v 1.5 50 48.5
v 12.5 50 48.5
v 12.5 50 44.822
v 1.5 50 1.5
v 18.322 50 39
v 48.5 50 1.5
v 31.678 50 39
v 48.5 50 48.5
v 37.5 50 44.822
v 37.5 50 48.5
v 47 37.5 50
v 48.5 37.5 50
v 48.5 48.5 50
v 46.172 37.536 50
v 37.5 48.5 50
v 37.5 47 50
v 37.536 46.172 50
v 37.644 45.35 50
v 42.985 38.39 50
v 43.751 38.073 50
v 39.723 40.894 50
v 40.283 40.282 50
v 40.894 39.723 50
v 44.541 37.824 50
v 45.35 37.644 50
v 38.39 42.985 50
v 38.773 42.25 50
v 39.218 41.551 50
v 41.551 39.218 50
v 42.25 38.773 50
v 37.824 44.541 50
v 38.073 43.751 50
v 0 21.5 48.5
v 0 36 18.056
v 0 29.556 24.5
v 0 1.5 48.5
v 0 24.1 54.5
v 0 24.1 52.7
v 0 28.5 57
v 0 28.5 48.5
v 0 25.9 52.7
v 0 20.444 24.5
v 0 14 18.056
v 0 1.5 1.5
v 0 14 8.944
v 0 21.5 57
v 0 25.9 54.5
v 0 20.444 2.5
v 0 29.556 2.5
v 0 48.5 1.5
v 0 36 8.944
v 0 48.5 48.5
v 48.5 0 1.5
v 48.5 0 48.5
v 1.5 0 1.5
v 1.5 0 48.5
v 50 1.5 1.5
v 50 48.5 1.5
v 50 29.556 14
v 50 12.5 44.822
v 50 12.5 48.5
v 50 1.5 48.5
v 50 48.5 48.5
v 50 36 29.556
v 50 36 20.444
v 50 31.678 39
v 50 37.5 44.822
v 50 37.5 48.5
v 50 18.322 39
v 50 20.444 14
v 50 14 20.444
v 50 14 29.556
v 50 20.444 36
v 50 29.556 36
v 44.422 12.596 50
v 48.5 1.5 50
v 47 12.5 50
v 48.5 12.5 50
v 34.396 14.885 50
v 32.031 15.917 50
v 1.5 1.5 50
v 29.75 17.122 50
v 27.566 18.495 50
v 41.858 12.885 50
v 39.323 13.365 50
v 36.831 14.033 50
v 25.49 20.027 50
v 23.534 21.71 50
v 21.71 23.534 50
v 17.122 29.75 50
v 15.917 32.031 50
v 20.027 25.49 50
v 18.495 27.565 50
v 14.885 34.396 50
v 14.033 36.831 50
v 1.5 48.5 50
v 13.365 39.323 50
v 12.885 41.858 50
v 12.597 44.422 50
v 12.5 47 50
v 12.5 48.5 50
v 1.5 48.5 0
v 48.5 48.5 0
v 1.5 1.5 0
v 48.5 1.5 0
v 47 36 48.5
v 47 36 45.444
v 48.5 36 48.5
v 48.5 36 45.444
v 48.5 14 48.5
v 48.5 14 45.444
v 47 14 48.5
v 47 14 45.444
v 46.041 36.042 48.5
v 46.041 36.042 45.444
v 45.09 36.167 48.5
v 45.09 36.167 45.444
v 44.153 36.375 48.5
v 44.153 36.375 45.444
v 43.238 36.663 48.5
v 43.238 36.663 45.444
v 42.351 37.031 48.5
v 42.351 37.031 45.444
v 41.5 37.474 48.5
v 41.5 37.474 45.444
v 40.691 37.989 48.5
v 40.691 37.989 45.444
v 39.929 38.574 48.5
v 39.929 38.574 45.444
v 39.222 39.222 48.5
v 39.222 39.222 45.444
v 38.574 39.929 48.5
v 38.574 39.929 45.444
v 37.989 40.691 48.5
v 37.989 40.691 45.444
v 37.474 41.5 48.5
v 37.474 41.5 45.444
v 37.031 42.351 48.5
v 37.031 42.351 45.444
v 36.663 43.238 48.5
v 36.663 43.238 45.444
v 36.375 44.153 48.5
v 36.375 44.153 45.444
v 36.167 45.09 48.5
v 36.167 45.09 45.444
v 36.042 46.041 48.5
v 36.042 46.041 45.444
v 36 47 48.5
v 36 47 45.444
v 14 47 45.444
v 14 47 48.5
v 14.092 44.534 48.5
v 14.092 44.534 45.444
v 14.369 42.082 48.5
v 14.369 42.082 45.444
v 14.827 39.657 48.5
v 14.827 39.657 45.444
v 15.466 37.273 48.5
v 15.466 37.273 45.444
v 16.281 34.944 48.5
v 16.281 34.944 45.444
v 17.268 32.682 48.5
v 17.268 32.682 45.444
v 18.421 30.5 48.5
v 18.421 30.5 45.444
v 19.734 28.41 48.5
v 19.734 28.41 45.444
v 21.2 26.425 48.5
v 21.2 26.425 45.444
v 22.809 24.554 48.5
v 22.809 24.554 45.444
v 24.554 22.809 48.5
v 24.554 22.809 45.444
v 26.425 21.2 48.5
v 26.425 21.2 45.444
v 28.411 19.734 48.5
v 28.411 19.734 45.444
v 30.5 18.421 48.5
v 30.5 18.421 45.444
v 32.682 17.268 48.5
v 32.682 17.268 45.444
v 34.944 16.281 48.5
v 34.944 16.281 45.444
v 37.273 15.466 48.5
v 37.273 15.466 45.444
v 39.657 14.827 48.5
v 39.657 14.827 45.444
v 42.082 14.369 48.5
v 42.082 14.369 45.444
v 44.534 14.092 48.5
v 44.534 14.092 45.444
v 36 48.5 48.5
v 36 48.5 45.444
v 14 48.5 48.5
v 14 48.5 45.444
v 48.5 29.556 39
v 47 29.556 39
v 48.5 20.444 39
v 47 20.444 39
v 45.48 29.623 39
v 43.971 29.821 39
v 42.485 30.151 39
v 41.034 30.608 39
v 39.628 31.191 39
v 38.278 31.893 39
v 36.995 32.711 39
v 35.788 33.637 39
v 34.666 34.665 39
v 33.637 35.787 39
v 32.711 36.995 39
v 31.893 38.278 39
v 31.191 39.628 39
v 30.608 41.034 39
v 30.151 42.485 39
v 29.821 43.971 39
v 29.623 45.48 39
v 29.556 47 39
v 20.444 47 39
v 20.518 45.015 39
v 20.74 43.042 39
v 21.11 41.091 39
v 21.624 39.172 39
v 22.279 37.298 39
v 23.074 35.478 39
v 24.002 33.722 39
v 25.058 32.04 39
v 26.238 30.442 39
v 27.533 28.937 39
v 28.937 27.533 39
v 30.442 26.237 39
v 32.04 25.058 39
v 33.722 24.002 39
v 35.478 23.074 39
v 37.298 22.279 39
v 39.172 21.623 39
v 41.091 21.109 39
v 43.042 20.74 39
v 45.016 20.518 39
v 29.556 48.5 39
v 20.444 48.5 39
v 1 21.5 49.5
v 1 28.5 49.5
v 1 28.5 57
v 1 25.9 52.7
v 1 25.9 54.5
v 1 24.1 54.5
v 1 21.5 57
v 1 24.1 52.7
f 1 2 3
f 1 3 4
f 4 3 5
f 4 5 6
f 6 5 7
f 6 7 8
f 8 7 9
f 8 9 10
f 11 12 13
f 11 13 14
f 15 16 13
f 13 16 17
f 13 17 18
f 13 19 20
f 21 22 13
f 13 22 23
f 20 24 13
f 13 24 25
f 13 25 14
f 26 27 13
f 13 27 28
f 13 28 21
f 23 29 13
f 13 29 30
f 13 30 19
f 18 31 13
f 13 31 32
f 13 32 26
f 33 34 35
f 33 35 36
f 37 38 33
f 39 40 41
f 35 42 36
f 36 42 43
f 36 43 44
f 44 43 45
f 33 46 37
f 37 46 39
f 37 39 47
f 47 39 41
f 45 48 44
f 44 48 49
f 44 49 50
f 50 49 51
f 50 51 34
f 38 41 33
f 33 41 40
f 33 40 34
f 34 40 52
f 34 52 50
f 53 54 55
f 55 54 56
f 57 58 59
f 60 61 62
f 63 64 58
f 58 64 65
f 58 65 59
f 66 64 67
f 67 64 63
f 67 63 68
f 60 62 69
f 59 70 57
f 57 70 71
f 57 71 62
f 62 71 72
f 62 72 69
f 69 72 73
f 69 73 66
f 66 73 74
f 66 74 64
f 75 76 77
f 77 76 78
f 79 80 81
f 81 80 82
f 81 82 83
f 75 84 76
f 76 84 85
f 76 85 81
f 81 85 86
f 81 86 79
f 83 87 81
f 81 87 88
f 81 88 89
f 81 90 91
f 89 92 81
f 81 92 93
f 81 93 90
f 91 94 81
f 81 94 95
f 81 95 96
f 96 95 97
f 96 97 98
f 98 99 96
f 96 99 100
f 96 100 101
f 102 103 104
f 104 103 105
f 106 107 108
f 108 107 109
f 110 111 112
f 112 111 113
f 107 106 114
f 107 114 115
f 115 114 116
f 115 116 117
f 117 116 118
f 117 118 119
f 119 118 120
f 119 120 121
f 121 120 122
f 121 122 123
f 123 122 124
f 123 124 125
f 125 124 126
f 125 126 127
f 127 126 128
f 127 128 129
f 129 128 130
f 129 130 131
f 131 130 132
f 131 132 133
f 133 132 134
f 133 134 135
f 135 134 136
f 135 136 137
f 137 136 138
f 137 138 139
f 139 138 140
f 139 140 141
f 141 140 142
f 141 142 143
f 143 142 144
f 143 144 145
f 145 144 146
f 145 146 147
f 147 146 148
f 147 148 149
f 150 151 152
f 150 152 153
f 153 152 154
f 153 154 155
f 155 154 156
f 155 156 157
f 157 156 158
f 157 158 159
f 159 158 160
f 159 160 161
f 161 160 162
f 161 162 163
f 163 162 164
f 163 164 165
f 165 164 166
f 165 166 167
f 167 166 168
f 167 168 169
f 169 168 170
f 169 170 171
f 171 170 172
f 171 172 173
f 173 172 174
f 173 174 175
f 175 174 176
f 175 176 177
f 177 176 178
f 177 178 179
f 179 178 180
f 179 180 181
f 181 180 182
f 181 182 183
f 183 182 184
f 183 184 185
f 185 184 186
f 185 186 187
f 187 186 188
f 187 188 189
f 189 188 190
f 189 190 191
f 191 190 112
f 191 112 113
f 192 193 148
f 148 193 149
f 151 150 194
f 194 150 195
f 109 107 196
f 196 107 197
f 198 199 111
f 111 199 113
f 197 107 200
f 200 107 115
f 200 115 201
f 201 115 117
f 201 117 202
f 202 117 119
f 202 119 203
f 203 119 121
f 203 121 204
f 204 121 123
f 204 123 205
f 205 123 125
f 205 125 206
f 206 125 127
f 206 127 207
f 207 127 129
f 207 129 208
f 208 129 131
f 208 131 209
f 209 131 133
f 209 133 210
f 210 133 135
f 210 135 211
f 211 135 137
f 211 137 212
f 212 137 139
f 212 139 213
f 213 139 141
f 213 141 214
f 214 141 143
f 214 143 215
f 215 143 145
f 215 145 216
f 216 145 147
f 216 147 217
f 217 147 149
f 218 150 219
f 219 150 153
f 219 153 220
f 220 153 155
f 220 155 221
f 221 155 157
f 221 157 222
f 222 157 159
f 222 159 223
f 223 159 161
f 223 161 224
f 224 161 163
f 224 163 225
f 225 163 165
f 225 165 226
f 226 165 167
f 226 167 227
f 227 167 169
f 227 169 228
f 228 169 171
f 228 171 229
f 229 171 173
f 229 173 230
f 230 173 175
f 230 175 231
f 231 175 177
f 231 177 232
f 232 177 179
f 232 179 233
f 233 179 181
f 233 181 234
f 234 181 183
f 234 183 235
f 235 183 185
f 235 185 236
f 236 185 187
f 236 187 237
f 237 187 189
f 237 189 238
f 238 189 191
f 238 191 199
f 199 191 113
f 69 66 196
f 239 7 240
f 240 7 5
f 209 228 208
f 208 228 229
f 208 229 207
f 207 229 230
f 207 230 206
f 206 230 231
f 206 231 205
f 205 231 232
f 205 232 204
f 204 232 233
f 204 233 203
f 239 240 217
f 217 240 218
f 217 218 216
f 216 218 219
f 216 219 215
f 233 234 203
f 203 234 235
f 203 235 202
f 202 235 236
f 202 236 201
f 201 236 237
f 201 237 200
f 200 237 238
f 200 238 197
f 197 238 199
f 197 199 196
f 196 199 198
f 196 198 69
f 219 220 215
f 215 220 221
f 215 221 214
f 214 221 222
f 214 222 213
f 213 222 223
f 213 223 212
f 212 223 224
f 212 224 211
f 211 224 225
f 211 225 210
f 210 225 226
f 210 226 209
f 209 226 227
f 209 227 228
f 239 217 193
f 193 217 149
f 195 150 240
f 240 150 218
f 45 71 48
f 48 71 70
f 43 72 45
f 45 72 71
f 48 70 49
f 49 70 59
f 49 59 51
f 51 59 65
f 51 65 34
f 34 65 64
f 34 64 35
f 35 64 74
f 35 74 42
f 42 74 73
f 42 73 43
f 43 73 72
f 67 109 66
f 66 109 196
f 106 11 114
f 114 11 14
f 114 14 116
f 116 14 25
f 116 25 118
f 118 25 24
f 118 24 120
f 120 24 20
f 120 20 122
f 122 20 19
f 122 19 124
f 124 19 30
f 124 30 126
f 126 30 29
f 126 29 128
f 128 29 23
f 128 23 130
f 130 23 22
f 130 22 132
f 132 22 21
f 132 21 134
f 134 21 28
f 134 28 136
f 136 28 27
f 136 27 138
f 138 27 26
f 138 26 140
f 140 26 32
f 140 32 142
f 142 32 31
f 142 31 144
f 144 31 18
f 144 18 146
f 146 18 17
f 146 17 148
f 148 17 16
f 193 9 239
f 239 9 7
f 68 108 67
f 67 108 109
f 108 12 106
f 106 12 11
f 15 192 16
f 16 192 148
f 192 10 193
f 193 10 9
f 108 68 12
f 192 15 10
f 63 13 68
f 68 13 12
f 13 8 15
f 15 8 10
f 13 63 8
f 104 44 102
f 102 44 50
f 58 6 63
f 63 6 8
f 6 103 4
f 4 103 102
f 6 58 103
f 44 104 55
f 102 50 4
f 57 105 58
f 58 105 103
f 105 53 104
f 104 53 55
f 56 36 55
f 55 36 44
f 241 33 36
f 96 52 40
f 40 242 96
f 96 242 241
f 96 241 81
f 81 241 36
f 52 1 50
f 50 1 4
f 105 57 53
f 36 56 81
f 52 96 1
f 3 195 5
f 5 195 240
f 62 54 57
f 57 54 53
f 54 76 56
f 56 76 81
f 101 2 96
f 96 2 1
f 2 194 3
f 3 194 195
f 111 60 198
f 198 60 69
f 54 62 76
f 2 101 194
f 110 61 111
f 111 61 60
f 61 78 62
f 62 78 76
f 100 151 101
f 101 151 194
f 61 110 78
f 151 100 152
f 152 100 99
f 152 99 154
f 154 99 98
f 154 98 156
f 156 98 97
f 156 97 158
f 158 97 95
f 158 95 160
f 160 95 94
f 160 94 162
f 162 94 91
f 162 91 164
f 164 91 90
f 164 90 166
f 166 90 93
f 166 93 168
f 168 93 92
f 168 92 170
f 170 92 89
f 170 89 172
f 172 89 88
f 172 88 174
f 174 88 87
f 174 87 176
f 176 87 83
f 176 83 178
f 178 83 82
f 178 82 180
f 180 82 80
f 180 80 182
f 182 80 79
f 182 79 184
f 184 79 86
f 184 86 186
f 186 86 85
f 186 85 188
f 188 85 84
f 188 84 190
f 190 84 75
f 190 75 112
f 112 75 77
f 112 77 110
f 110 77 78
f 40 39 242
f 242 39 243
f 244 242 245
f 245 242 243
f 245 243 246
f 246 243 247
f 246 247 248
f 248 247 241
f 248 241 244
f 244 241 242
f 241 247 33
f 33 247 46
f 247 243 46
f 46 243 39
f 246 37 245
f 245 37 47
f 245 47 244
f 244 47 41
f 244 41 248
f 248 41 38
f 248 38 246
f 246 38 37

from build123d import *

# Parameters (mm, degrees)
SKETCH1_W                = 50
SKETCH1_H                = 50
BOSS_EXTRUDE1_DEPTH      = 50
CHAMFER1_SIZE            = 1.5
BOSS_EXTRUDE2_DEPTH      = 7
BOSS_EXTRUDE2_DEPTH_BACK = 7
SKETCH6_W                = 1
SKETCH6_H                = 7
SKETCH7_W                = 1.8
SKETCH7_H                = 1.8
CUT_EXTRUDE1_DEPTH       = 7


with BuildPart() as part:
    # Sketch1 → Boss-Extrude1 (new body)
    with BuildSketch(Plane.XY):
        with Locations((25, 25)):
            Rectangle(SKETCH1_W, SKETCH1_H)
    extrude(amount=BOSS_EXTRUDE1_DEPTH)

    # Cut-Sweep2: sweep along a path in Sketch4
    with BuildLine(Plane.XY.offset(50)) as cut_sweep2_path:
        Line((25, 50), (25, 47))
        ThreePointArc((25, 47), (31.443650814, 31.443650814), (47, 25))
        Line((47, 25), (50, 25))
    # Sketch3 → Cut-Sweep2 (sweep, cut)
    with BuildSketch(Plane.XZ.offset(-50)):
        Polygon((29.556349186, 39), (36, 45.443650814), (36, 54.556349186), (29.556349186, 61), (20.443650814, 61), (14, 54.556349186), (14, 45.443650814), (20.443650814, 39), align=None)
    sweep(path=cut_sweep2_path.line, mode=Mode.SUBTRACT)

    # Sketch5 → Cut-Loft1 section 0
    with BuildSketch(Plane.ZY):
        with BuildLine():
            Line((24.5, 20.443650814), (24.5, 29.556349186))
            Line((24.5, 29.556349186), (18.056349186, 36))
            Line((18.056349186, 36), (8.943650814, 36))
            Line((8.943650814, 36), (2.5, 29.556349186))
            Line((2.5, 29.556349186), (2.5, 20.443650814))
            Line((2.5, 20.443650814), (8.943650814, 14))
            Line((8.943650814, 14), (18.056349186, 14))
            Line((18.056349186, 14), (24.5, 20.443650814))
        make_face()
    # Sketch2 → Cut-Loft1 section 1
    with BuildSketch(Plane.ZY.offset(-50)):
        with BuildLine():
            Line((36, 29.556349186), (29.556349186, 36))
            Line((29.556349186, 36), (20.443650814, 36))
            Line((20.443650814, 36), (14, 29.556349186))
            Line((14, 29.556349186), (14, 20.443650814))
            Line((14, 20.443650814), (20.443650814, 14))
            Line((20.443650814, 14), (29.556349186, 14))
            Line((29.556349186, 14), (36, 20.443650814))
            Line((36, 20.443650814), (36, 29.556349186))
        make_face()
    loft(mode=Mode.SUBTRACT)

    # Chamfer1
    chamfer1_edges = [part.edges().sort_by_distance(p)[0] for p in [
        (50, 7, 50),
        (43, 50, 50),
        (50, 43, 50),
        (7, 50, 50),
        (14, 48.5, 50),
        (23.665476221, 23.665476221, 50),
        (48.5, 14, 50),
        (36, 48.5, 50),
        (39.221825407, 39.221825407, 50),
        (48.5, 36, 50),
        (36, 50, 47.721825407),
        (14, 50, 47.721825407),
        (50, 36, 47.721825407),
        (50, 14, 47.721825407),
        (50, 17.221825407, 42.221825407),
        (50, 32.778174593, 42.221825407),
        (32.778174593, 50, 42.221825407),
        (17.221825407, 50, 42.221825407),
        (0, 25, 50),
        (25, 50, 0),
        (50, 25, 0),
        (25, 0, 0),
        (0, 25, 0),
        (25, 0, 50),
        (0, 50, 25),
        (50, 50, 25),
        (50, 0, 25),
        (0, 0, 25),
    ]]
    chamfer(chamfer1_edges, length=CHAMFER1_SIZE)

    # Sketch6 → Boss-Extrude2 (add, two sides: drawn at the far end of the back side and taken through both)
    with BuildSketch(Plane.XY.offset(50).offset(-BOSS_EXTRUDE2_DEPTH_BACK)):
        with Locations((0.5, 25)):
            Rectangle(SKETCH6_W, SKETCH6_H)
    extrude(amount=BOSS_EXTRUDE2_DEPTH + BOSS_EXTRUDE2_DEPTH_BACK)

    # Sketch7 → Cut-Extrude1 (cut)
    with BuildSketch(Plane(origin=(1, 0, 0), x_dir=(0, 0, -1), z_dir=(1, 0, 0))):
        with Locations((-53.6, 25)):
            Rectangle(SKETCH7_W, SKETCH7_H)
    extrude(amount=-CUT_EXTRUDE1_DEPTH, mode=Mode.SUBTRACT)


solid = part.part
